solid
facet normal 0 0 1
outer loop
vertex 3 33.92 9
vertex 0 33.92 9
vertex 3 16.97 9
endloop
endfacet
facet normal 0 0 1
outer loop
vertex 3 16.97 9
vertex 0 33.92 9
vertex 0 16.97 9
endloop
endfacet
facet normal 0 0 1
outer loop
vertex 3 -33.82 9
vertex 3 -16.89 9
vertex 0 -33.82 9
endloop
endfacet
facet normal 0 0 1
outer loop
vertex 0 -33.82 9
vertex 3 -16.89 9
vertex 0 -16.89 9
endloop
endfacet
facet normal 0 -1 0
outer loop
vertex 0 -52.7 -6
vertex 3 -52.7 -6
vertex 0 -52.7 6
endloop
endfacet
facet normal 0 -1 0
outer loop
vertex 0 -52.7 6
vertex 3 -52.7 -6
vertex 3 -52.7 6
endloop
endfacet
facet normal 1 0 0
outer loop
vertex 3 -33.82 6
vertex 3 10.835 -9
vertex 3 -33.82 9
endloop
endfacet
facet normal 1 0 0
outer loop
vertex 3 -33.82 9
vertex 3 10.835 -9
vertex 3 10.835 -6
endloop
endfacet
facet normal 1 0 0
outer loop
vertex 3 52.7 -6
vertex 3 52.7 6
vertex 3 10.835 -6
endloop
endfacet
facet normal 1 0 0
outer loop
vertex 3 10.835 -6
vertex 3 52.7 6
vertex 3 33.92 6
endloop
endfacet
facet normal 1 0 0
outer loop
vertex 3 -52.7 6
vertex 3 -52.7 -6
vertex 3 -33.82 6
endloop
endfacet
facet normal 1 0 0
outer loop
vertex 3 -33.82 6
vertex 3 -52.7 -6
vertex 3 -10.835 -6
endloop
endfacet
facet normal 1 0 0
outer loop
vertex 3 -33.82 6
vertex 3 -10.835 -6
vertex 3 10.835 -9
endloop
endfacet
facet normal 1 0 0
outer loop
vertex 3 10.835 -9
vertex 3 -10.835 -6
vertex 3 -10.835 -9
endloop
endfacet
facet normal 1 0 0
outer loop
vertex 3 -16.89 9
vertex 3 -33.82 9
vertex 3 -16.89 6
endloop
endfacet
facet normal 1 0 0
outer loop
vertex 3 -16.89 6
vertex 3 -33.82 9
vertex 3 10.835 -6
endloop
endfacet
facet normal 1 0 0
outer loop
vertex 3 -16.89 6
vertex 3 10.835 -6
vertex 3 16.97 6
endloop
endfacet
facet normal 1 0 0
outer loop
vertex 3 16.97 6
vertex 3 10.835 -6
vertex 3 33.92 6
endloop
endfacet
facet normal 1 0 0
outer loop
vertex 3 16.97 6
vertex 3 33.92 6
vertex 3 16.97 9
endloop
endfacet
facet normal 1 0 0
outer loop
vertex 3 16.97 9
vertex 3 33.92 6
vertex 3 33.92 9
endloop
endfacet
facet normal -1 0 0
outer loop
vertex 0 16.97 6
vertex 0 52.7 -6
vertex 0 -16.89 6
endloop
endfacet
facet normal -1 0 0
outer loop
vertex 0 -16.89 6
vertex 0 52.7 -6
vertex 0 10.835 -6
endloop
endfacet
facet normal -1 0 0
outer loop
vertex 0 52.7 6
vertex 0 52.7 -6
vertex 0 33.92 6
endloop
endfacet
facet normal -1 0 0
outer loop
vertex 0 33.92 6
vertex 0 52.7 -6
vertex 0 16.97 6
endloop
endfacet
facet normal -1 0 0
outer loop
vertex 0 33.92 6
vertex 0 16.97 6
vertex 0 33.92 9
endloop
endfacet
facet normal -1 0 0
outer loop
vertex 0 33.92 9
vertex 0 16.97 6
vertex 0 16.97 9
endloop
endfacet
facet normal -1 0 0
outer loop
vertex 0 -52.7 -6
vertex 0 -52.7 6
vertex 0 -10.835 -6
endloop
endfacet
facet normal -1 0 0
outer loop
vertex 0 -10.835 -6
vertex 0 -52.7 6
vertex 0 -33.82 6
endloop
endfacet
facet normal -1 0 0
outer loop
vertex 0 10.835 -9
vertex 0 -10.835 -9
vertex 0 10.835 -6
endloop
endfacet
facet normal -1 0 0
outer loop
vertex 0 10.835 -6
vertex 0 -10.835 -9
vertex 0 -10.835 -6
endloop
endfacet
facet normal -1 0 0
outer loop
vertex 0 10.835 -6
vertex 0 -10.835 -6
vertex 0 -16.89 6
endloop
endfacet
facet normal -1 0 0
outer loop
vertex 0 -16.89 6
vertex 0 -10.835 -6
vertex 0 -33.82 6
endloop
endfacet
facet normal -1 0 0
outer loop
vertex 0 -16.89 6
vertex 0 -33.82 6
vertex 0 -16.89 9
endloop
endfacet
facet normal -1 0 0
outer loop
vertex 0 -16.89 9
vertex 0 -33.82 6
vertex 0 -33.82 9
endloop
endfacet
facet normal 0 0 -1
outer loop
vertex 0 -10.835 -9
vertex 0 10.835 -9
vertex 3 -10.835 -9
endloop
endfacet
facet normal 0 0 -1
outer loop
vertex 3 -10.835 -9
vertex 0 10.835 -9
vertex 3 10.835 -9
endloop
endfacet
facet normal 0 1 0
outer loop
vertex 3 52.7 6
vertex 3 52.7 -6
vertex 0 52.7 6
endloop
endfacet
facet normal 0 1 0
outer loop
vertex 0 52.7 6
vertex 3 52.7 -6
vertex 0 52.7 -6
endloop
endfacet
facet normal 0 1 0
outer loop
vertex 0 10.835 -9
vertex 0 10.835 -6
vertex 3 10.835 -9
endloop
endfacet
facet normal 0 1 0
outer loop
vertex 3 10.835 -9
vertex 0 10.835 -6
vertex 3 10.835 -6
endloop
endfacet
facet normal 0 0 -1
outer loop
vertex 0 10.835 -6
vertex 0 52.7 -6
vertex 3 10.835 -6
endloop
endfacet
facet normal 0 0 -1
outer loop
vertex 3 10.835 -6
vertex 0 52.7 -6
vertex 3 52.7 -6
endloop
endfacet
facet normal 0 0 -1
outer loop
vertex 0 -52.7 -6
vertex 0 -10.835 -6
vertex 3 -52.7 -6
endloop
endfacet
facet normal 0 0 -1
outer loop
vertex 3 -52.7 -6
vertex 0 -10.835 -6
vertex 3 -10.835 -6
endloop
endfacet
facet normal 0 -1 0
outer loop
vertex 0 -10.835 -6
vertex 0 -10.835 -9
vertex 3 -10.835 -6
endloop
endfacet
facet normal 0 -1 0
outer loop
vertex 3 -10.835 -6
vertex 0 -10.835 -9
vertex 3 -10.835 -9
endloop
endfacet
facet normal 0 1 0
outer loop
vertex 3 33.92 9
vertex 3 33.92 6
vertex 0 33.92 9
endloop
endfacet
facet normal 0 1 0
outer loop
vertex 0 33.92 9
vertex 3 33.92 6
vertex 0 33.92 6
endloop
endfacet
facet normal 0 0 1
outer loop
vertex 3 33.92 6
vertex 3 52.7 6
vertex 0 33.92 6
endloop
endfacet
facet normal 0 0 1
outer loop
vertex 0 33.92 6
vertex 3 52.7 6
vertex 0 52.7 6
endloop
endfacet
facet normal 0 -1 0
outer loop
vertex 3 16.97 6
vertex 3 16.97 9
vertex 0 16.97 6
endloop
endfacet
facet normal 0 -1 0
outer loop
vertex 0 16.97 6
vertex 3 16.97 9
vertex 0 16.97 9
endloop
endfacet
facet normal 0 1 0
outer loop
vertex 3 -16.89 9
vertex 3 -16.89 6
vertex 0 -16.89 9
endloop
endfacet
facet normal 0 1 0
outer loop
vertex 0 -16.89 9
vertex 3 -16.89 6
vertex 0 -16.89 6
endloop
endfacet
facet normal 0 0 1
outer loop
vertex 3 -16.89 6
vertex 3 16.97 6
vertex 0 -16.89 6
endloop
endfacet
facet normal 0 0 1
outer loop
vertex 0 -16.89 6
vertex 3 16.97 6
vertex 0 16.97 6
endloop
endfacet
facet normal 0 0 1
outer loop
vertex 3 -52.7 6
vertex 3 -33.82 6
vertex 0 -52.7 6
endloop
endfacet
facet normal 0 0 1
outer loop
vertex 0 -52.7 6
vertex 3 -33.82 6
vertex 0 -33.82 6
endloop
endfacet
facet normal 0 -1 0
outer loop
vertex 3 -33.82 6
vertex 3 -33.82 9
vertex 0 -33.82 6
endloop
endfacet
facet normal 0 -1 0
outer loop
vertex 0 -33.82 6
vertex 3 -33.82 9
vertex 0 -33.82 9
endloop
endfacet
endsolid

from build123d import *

# Parameters (mm, degrees)
SKETCH1_W           = 18
SKETCH1_H           = 105.4
BOSS_EXTRUDE1_DEPTH = 3
SKETCH3_W           = 3
SKETCH3_H           = 41.865
CUT_EXTRUDE2_DEPTH  = 3
SKETCH5_W           = 3
SKETCH5_H           = 18.88
SKETCH5_H_2         = 33.86
SKETCH5_H_3         = 18.78
CUT_EXTRUDE5_DEPTH  = 3


with BuildPart() as part:
    # Sketch1 → Boss-Extrude1 (new body)
    with BuildSketch(Plane(origin=(0, 0, 0), x_dir=(0, 0, -1), z_dir=(1, 0, 0))):
        Rectangle(SKETCH1_W, SKETCH1_H)
    extrude(amount=BOSS_EXTRUDE1_DEPTH)

    # Sketch3 → Cut-Extrude2 (cut)
    with BuildSketch(Plane(origin=(3, 0, 0), x_dir=(0, 0, -1), z_dir=(1, 0, 0))):
        with Locations((7.5, -31.7675)):
            Rectangle(SKETCH3_W, SKETCH3_H)
        with Locations((7.5, 31.7675)):
            Rectangle(SKETCH3_W, SKETCH3_H)
    extrude(amount=-CUT_EXTRUDE2_DEPTH, mode=Mode.SUBTRACT)

    # Sketch5 → Cut-Extrude5 (cut)
    with BuildSketch(Plane.ZY):
        with Locations((7.5, -43.26)):
            Rectangle(SKETCH5_W, SKETCH5_H)
        with Locations((7.5, 0.04)):
            Rectangle(SKETCH5_W, SKETCH5_H_2)
        with Locations((7.5, 43.31)):
            Rectangle(SKETCH5_W, SKETCH5_H_3)
    extrude(amount=-CUT_EXTRUDE5_DEPTH, mode=Mode.SUBTRACT)


solid = part.part
